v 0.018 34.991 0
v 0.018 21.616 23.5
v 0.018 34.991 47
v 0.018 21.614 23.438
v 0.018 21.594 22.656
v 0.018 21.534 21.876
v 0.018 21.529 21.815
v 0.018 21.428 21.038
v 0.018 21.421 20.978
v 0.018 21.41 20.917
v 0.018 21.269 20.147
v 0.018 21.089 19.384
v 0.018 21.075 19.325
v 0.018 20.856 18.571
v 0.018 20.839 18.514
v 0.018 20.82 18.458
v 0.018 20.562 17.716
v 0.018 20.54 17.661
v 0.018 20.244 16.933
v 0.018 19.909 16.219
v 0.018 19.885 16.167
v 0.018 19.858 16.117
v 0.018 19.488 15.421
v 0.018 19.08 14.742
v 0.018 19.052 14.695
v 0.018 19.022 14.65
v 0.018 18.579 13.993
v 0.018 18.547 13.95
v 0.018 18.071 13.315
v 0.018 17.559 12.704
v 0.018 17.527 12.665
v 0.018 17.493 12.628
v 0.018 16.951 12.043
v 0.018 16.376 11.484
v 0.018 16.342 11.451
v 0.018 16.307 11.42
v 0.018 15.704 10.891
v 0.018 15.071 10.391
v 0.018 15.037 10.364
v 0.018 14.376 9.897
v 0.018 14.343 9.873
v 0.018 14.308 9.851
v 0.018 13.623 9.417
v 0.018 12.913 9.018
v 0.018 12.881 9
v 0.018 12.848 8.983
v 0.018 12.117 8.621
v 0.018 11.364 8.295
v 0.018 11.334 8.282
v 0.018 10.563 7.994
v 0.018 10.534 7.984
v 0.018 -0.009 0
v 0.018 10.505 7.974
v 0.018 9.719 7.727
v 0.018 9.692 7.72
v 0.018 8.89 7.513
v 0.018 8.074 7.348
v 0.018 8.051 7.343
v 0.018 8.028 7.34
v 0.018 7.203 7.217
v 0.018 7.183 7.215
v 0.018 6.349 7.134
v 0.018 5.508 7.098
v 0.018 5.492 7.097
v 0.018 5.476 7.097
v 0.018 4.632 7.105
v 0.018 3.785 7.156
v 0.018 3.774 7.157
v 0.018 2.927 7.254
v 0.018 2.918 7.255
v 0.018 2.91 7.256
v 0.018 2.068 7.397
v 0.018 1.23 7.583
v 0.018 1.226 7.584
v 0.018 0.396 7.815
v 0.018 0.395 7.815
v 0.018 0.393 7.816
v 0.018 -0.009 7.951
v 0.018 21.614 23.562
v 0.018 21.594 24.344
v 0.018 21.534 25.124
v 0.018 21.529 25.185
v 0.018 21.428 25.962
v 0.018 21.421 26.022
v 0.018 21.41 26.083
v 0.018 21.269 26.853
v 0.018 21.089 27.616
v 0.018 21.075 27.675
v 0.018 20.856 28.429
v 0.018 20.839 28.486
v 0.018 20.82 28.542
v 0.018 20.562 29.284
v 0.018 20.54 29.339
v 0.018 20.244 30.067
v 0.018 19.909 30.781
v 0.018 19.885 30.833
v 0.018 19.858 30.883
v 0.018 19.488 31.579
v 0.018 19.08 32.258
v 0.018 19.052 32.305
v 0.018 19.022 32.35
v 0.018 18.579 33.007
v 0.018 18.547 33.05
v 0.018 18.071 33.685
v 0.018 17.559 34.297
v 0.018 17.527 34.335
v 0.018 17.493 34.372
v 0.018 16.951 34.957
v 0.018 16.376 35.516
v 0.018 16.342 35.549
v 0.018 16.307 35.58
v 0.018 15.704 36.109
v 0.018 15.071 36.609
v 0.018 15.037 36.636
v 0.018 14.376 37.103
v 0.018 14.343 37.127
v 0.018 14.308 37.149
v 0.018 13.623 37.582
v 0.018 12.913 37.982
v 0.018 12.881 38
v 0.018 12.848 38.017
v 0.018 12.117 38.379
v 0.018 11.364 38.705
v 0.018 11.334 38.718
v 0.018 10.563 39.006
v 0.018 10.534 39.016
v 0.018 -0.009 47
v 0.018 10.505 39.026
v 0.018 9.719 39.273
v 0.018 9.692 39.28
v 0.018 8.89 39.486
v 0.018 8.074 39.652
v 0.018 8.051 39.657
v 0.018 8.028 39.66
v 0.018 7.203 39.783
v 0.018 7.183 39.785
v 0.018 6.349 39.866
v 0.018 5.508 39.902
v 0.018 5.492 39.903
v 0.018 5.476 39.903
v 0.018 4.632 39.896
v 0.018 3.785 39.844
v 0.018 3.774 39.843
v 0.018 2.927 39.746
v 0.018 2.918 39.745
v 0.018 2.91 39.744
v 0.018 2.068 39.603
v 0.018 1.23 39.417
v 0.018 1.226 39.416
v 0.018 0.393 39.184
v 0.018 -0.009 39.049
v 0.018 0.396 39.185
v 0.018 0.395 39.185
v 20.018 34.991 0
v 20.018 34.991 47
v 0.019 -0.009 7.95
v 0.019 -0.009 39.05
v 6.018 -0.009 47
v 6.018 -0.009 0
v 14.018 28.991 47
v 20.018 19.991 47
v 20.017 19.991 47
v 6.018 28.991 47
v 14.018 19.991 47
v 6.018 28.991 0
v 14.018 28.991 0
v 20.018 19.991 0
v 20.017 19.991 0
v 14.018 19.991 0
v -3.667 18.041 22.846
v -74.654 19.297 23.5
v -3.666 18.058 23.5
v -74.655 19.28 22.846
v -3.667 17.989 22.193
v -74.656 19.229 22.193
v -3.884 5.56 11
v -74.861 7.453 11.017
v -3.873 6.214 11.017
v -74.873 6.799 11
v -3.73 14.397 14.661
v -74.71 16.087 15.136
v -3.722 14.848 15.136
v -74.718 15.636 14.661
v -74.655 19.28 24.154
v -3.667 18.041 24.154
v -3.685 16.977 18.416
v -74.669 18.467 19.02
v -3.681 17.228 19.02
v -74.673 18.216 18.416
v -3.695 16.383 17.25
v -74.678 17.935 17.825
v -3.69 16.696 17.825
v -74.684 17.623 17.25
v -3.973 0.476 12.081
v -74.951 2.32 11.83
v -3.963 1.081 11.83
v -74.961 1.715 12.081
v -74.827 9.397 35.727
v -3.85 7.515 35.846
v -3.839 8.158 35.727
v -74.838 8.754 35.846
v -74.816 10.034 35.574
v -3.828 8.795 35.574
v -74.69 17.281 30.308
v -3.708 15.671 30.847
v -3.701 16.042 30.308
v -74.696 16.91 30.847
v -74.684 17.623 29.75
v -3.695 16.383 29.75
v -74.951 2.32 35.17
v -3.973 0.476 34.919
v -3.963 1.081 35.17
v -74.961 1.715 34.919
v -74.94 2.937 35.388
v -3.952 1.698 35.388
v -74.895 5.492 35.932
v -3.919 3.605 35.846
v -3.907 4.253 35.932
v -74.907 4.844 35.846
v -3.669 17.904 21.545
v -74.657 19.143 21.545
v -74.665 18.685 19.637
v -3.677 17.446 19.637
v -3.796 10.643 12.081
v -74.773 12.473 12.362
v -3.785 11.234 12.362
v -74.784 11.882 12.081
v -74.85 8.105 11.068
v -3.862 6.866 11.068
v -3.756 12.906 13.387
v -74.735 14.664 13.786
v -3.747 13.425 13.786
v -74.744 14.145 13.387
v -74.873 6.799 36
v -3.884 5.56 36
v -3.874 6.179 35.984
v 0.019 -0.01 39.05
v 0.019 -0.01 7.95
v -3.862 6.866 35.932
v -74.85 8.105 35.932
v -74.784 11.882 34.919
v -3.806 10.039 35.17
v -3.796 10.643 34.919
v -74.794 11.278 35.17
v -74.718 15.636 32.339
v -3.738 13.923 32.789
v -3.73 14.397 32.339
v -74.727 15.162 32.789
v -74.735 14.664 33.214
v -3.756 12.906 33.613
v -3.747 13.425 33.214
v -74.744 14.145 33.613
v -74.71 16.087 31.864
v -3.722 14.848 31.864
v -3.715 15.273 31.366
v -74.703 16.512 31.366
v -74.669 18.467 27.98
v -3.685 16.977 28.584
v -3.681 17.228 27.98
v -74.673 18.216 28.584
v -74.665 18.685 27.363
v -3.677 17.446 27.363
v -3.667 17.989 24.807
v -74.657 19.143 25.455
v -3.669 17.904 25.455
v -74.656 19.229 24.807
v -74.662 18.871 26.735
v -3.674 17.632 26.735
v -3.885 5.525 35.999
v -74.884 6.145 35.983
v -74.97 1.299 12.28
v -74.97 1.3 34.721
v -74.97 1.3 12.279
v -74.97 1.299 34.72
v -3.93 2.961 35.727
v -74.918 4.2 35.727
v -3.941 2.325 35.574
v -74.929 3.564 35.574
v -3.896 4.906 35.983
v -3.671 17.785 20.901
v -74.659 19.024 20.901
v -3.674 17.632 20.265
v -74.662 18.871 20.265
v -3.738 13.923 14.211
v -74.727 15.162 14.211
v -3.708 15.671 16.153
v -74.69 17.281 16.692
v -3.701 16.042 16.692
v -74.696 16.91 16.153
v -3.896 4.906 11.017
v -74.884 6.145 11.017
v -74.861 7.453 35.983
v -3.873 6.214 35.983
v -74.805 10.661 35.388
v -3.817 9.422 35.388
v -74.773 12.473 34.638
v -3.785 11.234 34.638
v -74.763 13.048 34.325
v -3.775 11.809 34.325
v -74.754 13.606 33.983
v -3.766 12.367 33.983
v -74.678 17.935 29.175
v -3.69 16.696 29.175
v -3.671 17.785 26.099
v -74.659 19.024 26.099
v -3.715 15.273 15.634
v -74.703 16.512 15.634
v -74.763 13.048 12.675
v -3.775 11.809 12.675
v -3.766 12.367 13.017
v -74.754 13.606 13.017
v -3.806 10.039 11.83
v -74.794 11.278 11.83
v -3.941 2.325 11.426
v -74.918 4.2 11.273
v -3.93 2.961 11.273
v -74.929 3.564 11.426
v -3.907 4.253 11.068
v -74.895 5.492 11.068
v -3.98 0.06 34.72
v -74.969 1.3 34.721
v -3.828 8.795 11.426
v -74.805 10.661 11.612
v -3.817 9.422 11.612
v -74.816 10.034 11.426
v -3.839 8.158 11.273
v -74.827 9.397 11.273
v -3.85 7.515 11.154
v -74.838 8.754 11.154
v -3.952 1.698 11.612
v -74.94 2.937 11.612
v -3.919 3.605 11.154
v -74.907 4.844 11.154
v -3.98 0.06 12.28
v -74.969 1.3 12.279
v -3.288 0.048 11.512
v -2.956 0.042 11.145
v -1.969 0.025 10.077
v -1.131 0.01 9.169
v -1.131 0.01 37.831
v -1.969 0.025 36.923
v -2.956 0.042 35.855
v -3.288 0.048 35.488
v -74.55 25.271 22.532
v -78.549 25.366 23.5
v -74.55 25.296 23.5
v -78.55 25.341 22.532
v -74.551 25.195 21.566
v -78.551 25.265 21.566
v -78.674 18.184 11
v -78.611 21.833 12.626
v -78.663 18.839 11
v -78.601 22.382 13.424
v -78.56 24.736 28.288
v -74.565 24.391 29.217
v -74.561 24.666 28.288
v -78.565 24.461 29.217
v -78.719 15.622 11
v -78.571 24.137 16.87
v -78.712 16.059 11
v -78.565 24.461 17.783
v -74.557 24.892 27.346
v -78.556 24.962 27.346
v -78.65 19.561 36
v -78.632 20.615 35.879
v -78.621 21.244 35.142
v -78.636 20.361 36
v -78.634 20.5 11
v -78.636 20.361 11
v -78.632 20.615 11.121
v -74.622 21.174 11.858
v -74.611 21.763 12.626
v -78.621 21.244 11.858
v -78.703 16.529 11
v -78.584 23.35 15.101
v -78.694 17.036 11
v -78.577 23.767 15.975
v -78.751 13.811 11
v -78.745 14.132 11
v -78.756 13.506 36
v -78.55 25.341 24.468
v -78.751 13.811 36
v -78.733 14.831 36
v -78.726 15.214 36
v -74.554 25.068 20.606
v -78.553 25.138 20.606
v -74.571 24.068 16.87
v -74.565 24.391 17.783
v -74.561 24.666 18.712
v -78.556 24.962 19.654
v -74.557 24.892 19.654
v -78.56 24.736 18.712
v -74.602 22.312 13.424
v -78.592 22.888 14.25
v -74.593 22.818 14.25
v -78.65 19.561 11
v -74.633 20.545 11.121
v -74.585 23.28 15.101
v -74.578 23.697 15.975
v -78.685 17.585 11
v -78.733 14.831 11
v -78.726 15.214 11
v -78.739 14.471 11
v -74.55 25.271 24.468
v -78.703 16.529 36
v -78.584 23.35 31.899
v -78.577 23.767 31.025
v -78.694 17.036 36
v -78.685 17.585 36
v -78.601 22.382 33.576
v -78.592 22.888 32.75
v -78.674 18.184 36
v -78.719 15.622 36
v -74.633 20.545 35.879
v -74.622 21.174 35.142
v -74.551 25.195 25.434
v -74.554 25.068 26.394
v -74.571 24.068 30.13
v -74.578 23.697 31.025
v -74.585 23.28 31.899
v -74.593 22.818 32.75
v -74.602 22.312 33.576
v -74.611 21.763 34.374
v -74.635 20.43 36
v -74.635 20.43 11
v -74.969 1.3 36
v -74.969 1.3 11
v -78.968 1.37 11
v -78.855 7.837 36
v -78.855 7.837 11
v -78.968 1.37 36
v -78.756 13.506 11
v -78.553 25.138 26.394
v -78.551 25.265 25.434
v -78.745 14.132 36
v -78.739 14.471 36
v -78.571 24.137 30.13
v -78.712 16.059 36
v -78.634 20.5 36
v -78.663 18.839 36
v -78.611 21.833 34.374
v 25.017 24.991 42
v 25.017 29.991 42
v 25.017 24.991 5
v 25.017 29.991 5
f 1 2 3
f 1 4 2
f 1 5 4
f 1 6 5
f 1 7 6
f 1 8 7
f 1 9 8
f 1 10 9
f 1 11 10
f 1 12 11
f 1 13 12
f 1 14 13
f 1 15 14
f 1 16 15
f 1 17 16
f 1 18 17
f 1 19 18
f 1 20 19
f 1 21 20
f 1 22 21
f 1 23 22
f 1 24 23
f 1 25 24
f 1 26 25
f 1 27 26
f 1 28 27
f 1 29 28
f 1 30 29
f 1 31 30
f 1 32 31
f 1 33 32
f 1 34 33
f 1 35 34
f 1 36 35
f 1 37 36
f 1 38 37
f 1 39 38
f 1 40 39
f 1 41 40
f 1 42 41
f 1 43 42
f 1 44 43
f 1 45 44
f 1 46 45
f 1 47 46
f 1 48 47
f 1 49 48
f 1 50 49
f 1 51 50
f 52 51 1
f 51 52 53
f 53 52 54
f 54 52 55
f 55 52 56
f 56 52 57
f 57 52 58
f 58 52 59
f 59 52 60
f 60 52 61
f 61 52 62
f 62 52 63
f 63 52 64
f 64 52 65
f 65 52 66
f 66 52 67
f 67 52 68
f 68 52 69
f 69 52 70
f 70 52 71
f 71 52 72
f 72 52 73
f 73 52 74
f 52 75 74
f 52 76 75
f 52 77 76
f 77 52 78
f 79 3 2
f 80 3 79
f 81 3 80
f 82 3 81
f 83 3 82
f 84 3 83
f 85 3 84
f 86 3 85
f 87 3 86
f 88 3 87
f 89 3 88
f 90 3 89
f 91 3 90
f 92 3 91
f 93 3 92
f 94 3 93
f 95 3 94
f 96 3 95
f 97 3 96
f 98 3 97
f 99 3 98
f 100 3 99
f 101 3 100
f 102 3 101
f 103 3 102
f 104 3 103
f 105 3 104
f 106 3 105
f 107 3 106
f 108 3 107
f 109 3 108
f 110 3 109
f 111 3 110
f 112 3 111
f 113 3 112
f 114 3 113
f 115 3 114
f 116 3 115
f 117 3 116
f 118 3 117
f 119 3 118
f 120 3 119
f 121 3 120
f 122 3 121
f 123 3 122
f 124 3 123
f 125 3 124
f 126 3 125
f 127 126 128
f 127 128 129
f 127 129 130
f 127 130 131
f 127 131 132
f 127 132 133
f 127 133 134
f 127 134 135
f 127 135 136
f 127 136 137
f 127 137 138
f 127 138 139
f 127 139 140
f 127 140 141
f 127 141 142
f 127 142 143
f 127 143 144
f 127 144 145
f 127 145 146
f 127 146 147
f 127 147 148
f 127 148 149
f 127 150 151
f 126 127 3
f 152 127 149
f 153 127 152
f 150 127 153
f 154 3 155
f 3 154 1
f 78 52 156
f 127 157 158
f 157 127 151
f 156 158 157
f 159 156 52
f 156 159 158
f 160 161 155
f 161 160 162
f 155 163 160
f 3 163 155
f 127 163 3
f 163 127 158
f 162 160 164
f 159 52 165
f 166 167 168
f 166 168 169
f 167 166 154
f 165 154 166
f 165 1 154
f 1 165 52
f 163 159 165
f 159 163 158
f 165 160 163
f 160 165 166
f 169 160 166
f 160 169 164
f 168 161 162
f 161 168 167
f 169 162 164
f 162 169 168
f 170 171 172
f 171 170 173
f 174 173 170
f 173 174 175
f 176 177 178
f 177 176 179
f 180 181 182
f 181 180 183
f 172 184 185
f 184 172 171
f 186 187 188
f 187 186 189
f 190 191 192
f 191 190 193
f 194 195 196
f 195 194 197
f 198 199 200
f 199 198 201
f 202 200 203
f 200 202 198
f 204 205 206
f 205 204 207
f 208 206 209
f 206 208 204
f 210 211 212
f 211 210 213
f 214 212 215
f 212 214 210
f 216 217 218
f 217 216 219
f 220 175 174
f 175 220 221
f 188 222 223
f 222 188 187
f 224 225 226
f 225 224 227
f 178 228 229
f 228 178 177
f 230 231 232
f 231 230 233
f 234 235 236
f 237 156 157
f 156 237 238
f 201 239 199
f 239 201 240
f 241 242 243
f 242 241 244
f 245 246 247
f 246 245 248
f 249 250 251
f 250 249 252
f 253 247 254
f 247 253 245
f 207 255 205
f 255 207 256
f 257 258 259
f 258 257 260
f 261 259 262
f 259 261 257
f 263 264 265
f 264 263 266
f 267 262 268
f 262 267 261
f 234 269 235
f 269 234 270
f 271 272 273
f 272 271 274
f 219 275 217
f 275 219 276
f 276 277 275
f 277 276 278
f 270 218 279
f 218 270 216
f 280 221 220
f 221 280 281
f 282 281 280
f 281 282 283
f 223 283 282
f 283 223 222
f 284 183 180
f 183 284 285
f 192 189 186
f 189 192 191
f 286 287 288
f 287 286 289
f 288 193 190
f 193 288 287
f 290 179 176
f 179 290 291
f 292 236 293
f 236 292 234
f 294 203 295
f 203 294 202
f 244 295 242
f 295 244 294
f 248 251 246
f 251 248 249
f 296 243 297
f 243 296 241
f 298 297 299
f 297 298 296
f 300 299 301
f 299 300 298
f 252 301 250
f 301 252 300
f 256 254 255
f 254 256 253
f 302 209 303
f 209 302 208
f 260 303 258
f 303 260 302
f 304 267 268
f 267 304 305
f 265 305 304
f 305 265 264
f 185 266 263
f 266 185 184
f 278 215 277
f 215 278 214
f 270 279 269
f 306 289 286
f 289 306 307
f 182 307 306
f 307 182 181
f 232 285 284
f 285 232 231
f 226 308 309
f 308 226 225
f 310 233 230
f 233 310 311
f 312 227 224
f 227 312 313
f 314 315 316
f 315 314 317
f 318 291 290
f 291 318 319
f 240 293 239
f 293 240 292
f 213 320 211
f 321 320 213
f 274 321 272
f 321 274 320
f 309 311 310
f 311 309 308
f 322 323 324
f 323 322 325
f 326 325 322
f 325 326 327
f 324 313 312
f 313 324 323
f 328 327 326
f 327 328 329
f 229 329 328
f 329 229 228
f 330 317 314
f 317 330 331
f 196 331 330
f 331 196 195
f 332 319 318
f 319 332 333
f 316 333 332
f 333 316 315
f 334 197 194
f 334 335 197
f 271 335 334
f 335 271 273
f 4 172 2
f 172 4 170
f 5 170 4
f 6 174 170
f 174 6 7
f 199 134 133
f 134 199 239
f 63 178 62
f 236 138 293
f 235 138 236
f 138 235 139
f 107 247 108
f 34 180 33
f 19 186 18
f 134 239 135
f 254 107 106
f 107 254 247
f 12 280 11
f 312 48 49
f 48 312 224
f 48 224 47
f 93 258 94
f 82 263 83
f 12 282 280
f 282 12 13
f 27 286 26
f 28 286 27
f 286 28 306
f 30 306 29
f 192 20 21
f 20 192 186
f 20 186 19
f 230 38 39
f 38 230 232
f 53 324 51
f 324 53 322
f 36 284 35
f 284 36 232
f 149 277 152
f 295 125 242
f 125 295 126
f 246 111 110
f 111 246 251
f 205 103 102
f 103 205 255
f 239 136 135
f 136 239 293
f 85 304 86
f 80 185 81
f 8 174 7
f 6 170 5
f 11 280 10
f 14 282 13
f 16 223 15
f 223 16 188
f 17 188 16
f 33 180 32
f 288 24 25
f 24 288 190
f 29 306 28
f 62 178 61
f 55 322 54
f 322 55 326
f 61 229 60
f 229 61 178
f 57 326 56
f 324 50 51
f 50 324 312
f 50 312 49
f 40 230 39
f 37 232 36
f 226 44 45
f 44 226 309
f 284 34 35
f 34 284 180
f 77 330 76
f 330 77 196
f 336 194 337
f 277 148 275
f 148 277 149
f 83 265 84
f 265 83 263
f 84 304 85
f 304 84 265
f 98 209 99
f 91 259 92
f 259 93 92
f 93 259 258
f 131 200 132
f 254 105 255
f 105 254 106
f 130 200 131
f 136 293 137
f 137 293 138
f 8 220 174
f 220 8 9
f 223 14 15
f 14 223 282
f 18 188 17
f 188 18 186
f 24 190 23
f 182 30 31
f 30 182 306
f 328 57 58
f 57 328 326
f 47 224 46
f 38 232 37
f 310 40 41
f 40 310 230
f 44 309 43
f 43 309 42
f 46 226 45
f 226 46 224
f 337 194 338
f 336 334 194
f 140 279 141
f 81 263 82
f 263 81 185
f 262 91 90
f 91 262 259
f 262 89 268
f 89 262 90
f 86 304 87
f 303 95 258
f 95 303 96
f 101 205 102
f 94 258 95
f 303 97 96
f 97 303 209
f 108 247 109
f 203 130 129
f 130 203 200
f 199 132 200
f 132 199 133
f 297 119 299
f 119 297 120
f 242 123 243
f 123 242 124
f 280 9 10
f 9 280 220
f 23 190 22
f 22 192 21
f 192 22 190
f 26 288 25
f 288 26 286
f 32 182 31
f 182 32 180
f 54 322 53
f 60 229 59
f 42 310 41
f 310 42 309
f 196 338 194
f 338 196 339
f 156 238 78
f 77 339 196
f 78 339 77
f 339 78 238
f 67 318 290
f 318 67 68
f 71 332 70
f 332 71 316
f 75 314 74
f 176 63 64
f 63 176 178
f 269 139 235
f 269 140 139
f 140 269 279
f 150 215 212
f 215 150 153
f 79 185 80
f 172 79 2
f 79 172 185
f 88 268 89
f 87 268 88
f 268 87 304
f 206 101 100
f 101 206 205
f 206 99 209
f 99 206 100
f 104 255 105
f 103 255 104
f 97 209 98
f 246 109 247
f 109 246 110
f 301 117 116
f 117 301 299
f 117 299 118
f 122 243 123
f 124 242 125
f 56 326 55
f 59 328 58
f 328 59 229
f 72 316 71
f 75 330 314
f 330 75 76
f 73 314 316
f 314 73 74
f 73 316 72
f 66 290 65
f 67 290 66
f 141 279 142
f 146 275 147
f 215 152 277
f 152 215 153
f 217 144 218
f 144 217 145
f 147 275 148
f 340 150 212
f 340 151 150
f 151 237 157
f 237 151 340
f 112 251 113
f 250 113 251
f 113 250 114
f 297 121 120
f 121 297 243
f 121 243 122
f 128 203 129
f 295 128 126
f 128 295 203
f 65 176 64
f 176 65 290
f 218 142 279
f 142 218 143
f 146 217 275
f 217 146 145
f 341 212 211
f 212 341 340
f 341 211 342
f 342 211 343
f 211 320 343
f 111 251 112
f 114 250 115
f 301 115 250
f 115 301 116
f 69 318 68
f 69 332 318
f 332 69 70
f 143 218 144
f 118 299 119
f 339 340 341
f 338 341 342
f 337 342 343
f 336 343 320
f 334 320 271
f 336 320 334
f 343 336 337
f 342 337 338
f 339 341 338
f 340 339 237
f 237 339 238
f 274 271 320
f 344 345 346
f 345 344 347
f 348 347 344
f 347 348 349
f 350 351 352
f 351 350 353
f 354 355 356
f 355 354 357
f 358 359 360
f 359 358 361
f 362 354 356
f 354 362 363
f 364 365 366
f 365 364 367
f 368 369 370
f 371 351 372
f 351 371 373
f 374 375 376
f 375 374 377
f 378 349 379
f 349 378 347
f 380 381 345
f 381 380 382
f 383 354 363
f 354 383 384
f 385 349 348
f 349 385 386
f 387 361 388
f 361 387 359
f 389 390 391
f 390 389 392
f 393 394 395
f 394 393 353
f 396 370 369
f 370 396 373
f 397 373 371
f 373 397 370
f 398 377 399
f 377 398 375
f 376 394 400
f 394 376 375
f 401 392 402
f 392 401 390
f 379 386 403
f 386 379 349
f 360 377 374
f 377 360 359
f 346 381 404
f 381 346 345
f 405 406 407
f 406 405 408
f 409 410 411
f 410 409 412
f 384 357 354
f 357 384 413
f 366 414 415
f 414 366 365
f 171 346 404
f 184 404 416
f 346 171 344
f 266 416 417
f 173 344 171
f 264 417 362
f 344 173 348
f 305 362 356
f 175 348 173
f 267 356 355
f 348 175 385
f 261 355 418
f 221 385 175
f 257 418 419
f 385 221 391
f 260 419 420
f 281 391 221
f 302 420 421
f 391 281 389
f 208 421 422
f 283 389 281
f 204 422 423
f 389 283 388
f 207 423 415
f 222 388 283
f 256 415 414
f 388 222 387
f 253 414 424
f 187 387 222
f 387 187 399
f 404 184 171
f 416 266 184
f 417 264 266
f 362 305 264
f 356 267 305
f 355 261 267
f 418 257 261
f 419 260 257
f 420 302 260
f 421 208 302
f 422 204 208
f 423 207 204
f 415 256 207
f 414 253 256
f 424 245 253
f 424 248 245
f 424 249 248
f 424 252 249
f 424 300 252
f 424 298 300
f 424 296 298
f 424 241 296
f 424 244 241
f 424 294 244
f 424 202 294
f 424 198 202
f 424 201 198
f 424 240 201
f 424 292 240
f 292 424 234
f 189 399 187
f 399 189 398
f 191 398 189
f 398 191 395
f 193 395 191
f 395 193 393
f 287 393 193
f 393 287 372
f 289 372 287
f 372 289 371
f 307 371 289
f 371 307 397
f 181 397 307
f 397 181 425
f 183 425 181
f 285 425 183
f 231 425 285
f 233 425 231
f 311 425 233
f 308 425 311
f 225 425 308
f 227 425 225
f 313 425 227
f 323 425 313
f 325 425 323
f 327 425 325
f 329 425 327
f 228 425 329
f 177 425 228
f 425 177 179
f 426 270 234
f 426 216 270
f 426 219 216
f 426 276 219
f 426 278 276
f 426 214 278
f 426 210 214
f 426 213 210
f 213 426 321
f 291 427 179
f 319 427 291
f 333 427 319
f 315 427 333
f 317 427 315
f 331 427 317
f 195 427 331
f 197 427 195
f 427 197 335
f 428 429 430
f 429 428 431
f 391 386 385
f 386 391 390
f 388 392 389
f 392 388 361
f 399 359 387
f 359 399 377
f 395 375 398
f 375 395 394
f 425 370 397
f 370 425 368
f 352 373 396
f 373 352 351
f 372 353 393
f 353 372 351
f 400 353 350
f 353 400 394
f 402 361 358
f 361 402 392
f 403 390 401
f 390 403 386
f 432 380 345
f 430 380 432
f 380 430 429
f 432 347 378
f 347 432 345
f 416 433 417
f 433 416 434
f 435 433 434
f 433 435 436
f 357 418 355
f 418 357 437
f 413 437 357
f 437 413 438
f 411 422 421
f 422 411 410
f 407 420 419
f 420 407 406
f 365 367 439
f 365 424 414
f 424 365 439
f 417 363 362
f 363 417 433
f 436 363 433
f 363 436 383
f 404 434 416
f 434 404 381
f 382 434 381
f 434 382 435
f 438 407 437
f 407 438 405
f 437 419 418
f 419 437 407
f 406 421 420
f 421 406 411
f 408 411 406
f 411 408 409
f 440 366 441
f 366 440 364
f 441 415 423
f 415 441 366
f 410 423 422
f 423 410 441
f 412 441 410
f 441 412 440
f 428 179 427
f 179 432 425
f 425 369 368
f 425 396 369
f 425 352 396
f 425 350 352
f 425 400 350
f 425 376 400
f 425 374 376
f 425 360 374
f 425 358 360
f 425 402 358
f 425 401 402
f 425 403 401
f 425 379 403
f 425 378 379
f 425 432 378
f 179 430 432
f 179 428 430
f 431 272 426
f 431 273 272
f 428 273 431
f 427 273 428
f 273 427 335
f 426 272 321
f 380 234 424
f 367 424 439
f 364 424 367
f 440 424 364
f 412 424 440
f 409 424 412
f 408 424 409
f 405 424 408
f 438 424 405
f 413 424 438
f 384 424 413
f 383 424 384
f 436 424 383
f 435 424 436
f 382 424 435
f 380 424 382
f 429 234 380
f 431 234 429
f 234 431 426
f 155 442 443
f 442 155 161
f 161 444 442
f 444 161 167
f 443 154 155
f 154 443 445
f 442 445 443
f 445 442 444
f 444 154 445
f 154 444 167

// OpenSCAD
// The width of the hanger. Should fit the printer's slot width.
hanger_width = 47;  

// The height of the hanger tab. Should fit the printer's slot height.
inner_tab_height = 15;

// The width of the hanger slot. Should fit printer's wall thickness.
slot_thickness = 8;

// The external height of the hanger.
hanger_height = 35;

// The length of the rod. Should fit the spool inner width.
rod_length = 75;  

// The diameter of the rod.
rod_diameter = 25;

// The ehight of the top of the rod from the bottom of the hanger.
rod_height = 18;

// Raise the end of the rod by this angle. Use to compensate for 
// free play in the hanger slot.
rod_pitch_angle = 1.0;

// Thickness of the hanger's walls.
hanger_wall = 6;

// The height of the end stopper above the top of the rod.
stopper_margin = 6;

// The thickness of the stopper at the end of the rod.
stopper_thickness = 4;

/* [Hidden] */

// Faces per cylinder.
$fn=120;

hanger_thickness = slot_thickness + 2*hanger_wall;

stopper_diameter = rod_diameter+2*stopper_margin;

rod_radius = rod_diameter/2;

rod_center_z = -(rod_radius - rod_height);

// The size of the support at the corner between the rod and the hanger.
corner_size = 4;

// Adding to the internal tab a bump with diagonal edges for easier 
// alighment into the printer hole.
bump_size = 5;

// Small values to maintain manifold.
eps1 = 0.01;
eps2 = 2*eps1;


module bump() {
  translate([hanger_thickness-eps1, -hanger_width/2, hanger_height]) 
  rotate([0, 90, 0]) hull() {
    cube([inner_tab_height, hanger_width, eps1]);  
    translate([bump_size, bump_size, bump_size-eps1])
      cube([inner_tab_height - 2*bump_size, hanger_width-2*bump_size, eps1]);  
  }
}

module hanger() {
  translate([0, -hanger_width/2, 0]) 
  difference() {
    cube([hanger_thickness,  hanger_width, hanger_height]);
    
    translate([hanger_wall, -eps1, -eps1]) 
      cube([slot_thickness, hanger_width+eps2, hanger_height-hanger_wall+eps1]);
    
    translate([hanger_wall + slot_thickness - eps1, -eps1, -eps1]) 

      cube([hanger_wall+eps2, hanger_width+eps2, hanger_height-inner_tab_height+eps1]);
  }
}

module rod() {
  intersection() {
    union() {
      // Rod.
      translate([0, 0, rod_center_z]) rotate([0, -90, 0]) 
          cylinder(d= rod_diameter, h=   rod_length);
      // Corner support.
      translate([0, 0, rod_center_z]) rotate([0, -90, 0]) 
          cylinder(d1=  rod_diameter+2*corner_size, d2=rod_diameter, h=corner_size); 
    }
    // Cut bottom.
    translate([-rod_length-eps1, -rod_diameter, -eps1]) 
        cube([rod_length+eps2, 2*rod_diameter, rod_height + corner_size+ eps1]);
  }
}

module stopper() {
  translate([-rod_length, 0, 0])  
  intersection() {
    translate([0, 0, rod_center_z]) rotate([0, -90, 0]) 
      cylinder(d=stopper_diameter, stopper_thickness);  
    
     translate([-stopper_thickness-eps1, -rod_diameter/2, 0]) 
       cube([stopper_thickness+eps2, rod_diameter, stopper_diameter]);
  }
}

module main() {
  hanger();
  bump();
  rotate([0, rod_pitch_angle, 0]) union() {
    translate([eps1, 0, 0]) rod();
    translate([eps2, 0, 0]) stopper();
  }
}

//main();

// Transformation to printing orientation. This keeps the 3D fibers 
// along the rod and the hanger for max strength. Make sure to 
// enable support material.
translate([0, 0, hanger_width/2]) rotate([-90, 0, 0]) main();
